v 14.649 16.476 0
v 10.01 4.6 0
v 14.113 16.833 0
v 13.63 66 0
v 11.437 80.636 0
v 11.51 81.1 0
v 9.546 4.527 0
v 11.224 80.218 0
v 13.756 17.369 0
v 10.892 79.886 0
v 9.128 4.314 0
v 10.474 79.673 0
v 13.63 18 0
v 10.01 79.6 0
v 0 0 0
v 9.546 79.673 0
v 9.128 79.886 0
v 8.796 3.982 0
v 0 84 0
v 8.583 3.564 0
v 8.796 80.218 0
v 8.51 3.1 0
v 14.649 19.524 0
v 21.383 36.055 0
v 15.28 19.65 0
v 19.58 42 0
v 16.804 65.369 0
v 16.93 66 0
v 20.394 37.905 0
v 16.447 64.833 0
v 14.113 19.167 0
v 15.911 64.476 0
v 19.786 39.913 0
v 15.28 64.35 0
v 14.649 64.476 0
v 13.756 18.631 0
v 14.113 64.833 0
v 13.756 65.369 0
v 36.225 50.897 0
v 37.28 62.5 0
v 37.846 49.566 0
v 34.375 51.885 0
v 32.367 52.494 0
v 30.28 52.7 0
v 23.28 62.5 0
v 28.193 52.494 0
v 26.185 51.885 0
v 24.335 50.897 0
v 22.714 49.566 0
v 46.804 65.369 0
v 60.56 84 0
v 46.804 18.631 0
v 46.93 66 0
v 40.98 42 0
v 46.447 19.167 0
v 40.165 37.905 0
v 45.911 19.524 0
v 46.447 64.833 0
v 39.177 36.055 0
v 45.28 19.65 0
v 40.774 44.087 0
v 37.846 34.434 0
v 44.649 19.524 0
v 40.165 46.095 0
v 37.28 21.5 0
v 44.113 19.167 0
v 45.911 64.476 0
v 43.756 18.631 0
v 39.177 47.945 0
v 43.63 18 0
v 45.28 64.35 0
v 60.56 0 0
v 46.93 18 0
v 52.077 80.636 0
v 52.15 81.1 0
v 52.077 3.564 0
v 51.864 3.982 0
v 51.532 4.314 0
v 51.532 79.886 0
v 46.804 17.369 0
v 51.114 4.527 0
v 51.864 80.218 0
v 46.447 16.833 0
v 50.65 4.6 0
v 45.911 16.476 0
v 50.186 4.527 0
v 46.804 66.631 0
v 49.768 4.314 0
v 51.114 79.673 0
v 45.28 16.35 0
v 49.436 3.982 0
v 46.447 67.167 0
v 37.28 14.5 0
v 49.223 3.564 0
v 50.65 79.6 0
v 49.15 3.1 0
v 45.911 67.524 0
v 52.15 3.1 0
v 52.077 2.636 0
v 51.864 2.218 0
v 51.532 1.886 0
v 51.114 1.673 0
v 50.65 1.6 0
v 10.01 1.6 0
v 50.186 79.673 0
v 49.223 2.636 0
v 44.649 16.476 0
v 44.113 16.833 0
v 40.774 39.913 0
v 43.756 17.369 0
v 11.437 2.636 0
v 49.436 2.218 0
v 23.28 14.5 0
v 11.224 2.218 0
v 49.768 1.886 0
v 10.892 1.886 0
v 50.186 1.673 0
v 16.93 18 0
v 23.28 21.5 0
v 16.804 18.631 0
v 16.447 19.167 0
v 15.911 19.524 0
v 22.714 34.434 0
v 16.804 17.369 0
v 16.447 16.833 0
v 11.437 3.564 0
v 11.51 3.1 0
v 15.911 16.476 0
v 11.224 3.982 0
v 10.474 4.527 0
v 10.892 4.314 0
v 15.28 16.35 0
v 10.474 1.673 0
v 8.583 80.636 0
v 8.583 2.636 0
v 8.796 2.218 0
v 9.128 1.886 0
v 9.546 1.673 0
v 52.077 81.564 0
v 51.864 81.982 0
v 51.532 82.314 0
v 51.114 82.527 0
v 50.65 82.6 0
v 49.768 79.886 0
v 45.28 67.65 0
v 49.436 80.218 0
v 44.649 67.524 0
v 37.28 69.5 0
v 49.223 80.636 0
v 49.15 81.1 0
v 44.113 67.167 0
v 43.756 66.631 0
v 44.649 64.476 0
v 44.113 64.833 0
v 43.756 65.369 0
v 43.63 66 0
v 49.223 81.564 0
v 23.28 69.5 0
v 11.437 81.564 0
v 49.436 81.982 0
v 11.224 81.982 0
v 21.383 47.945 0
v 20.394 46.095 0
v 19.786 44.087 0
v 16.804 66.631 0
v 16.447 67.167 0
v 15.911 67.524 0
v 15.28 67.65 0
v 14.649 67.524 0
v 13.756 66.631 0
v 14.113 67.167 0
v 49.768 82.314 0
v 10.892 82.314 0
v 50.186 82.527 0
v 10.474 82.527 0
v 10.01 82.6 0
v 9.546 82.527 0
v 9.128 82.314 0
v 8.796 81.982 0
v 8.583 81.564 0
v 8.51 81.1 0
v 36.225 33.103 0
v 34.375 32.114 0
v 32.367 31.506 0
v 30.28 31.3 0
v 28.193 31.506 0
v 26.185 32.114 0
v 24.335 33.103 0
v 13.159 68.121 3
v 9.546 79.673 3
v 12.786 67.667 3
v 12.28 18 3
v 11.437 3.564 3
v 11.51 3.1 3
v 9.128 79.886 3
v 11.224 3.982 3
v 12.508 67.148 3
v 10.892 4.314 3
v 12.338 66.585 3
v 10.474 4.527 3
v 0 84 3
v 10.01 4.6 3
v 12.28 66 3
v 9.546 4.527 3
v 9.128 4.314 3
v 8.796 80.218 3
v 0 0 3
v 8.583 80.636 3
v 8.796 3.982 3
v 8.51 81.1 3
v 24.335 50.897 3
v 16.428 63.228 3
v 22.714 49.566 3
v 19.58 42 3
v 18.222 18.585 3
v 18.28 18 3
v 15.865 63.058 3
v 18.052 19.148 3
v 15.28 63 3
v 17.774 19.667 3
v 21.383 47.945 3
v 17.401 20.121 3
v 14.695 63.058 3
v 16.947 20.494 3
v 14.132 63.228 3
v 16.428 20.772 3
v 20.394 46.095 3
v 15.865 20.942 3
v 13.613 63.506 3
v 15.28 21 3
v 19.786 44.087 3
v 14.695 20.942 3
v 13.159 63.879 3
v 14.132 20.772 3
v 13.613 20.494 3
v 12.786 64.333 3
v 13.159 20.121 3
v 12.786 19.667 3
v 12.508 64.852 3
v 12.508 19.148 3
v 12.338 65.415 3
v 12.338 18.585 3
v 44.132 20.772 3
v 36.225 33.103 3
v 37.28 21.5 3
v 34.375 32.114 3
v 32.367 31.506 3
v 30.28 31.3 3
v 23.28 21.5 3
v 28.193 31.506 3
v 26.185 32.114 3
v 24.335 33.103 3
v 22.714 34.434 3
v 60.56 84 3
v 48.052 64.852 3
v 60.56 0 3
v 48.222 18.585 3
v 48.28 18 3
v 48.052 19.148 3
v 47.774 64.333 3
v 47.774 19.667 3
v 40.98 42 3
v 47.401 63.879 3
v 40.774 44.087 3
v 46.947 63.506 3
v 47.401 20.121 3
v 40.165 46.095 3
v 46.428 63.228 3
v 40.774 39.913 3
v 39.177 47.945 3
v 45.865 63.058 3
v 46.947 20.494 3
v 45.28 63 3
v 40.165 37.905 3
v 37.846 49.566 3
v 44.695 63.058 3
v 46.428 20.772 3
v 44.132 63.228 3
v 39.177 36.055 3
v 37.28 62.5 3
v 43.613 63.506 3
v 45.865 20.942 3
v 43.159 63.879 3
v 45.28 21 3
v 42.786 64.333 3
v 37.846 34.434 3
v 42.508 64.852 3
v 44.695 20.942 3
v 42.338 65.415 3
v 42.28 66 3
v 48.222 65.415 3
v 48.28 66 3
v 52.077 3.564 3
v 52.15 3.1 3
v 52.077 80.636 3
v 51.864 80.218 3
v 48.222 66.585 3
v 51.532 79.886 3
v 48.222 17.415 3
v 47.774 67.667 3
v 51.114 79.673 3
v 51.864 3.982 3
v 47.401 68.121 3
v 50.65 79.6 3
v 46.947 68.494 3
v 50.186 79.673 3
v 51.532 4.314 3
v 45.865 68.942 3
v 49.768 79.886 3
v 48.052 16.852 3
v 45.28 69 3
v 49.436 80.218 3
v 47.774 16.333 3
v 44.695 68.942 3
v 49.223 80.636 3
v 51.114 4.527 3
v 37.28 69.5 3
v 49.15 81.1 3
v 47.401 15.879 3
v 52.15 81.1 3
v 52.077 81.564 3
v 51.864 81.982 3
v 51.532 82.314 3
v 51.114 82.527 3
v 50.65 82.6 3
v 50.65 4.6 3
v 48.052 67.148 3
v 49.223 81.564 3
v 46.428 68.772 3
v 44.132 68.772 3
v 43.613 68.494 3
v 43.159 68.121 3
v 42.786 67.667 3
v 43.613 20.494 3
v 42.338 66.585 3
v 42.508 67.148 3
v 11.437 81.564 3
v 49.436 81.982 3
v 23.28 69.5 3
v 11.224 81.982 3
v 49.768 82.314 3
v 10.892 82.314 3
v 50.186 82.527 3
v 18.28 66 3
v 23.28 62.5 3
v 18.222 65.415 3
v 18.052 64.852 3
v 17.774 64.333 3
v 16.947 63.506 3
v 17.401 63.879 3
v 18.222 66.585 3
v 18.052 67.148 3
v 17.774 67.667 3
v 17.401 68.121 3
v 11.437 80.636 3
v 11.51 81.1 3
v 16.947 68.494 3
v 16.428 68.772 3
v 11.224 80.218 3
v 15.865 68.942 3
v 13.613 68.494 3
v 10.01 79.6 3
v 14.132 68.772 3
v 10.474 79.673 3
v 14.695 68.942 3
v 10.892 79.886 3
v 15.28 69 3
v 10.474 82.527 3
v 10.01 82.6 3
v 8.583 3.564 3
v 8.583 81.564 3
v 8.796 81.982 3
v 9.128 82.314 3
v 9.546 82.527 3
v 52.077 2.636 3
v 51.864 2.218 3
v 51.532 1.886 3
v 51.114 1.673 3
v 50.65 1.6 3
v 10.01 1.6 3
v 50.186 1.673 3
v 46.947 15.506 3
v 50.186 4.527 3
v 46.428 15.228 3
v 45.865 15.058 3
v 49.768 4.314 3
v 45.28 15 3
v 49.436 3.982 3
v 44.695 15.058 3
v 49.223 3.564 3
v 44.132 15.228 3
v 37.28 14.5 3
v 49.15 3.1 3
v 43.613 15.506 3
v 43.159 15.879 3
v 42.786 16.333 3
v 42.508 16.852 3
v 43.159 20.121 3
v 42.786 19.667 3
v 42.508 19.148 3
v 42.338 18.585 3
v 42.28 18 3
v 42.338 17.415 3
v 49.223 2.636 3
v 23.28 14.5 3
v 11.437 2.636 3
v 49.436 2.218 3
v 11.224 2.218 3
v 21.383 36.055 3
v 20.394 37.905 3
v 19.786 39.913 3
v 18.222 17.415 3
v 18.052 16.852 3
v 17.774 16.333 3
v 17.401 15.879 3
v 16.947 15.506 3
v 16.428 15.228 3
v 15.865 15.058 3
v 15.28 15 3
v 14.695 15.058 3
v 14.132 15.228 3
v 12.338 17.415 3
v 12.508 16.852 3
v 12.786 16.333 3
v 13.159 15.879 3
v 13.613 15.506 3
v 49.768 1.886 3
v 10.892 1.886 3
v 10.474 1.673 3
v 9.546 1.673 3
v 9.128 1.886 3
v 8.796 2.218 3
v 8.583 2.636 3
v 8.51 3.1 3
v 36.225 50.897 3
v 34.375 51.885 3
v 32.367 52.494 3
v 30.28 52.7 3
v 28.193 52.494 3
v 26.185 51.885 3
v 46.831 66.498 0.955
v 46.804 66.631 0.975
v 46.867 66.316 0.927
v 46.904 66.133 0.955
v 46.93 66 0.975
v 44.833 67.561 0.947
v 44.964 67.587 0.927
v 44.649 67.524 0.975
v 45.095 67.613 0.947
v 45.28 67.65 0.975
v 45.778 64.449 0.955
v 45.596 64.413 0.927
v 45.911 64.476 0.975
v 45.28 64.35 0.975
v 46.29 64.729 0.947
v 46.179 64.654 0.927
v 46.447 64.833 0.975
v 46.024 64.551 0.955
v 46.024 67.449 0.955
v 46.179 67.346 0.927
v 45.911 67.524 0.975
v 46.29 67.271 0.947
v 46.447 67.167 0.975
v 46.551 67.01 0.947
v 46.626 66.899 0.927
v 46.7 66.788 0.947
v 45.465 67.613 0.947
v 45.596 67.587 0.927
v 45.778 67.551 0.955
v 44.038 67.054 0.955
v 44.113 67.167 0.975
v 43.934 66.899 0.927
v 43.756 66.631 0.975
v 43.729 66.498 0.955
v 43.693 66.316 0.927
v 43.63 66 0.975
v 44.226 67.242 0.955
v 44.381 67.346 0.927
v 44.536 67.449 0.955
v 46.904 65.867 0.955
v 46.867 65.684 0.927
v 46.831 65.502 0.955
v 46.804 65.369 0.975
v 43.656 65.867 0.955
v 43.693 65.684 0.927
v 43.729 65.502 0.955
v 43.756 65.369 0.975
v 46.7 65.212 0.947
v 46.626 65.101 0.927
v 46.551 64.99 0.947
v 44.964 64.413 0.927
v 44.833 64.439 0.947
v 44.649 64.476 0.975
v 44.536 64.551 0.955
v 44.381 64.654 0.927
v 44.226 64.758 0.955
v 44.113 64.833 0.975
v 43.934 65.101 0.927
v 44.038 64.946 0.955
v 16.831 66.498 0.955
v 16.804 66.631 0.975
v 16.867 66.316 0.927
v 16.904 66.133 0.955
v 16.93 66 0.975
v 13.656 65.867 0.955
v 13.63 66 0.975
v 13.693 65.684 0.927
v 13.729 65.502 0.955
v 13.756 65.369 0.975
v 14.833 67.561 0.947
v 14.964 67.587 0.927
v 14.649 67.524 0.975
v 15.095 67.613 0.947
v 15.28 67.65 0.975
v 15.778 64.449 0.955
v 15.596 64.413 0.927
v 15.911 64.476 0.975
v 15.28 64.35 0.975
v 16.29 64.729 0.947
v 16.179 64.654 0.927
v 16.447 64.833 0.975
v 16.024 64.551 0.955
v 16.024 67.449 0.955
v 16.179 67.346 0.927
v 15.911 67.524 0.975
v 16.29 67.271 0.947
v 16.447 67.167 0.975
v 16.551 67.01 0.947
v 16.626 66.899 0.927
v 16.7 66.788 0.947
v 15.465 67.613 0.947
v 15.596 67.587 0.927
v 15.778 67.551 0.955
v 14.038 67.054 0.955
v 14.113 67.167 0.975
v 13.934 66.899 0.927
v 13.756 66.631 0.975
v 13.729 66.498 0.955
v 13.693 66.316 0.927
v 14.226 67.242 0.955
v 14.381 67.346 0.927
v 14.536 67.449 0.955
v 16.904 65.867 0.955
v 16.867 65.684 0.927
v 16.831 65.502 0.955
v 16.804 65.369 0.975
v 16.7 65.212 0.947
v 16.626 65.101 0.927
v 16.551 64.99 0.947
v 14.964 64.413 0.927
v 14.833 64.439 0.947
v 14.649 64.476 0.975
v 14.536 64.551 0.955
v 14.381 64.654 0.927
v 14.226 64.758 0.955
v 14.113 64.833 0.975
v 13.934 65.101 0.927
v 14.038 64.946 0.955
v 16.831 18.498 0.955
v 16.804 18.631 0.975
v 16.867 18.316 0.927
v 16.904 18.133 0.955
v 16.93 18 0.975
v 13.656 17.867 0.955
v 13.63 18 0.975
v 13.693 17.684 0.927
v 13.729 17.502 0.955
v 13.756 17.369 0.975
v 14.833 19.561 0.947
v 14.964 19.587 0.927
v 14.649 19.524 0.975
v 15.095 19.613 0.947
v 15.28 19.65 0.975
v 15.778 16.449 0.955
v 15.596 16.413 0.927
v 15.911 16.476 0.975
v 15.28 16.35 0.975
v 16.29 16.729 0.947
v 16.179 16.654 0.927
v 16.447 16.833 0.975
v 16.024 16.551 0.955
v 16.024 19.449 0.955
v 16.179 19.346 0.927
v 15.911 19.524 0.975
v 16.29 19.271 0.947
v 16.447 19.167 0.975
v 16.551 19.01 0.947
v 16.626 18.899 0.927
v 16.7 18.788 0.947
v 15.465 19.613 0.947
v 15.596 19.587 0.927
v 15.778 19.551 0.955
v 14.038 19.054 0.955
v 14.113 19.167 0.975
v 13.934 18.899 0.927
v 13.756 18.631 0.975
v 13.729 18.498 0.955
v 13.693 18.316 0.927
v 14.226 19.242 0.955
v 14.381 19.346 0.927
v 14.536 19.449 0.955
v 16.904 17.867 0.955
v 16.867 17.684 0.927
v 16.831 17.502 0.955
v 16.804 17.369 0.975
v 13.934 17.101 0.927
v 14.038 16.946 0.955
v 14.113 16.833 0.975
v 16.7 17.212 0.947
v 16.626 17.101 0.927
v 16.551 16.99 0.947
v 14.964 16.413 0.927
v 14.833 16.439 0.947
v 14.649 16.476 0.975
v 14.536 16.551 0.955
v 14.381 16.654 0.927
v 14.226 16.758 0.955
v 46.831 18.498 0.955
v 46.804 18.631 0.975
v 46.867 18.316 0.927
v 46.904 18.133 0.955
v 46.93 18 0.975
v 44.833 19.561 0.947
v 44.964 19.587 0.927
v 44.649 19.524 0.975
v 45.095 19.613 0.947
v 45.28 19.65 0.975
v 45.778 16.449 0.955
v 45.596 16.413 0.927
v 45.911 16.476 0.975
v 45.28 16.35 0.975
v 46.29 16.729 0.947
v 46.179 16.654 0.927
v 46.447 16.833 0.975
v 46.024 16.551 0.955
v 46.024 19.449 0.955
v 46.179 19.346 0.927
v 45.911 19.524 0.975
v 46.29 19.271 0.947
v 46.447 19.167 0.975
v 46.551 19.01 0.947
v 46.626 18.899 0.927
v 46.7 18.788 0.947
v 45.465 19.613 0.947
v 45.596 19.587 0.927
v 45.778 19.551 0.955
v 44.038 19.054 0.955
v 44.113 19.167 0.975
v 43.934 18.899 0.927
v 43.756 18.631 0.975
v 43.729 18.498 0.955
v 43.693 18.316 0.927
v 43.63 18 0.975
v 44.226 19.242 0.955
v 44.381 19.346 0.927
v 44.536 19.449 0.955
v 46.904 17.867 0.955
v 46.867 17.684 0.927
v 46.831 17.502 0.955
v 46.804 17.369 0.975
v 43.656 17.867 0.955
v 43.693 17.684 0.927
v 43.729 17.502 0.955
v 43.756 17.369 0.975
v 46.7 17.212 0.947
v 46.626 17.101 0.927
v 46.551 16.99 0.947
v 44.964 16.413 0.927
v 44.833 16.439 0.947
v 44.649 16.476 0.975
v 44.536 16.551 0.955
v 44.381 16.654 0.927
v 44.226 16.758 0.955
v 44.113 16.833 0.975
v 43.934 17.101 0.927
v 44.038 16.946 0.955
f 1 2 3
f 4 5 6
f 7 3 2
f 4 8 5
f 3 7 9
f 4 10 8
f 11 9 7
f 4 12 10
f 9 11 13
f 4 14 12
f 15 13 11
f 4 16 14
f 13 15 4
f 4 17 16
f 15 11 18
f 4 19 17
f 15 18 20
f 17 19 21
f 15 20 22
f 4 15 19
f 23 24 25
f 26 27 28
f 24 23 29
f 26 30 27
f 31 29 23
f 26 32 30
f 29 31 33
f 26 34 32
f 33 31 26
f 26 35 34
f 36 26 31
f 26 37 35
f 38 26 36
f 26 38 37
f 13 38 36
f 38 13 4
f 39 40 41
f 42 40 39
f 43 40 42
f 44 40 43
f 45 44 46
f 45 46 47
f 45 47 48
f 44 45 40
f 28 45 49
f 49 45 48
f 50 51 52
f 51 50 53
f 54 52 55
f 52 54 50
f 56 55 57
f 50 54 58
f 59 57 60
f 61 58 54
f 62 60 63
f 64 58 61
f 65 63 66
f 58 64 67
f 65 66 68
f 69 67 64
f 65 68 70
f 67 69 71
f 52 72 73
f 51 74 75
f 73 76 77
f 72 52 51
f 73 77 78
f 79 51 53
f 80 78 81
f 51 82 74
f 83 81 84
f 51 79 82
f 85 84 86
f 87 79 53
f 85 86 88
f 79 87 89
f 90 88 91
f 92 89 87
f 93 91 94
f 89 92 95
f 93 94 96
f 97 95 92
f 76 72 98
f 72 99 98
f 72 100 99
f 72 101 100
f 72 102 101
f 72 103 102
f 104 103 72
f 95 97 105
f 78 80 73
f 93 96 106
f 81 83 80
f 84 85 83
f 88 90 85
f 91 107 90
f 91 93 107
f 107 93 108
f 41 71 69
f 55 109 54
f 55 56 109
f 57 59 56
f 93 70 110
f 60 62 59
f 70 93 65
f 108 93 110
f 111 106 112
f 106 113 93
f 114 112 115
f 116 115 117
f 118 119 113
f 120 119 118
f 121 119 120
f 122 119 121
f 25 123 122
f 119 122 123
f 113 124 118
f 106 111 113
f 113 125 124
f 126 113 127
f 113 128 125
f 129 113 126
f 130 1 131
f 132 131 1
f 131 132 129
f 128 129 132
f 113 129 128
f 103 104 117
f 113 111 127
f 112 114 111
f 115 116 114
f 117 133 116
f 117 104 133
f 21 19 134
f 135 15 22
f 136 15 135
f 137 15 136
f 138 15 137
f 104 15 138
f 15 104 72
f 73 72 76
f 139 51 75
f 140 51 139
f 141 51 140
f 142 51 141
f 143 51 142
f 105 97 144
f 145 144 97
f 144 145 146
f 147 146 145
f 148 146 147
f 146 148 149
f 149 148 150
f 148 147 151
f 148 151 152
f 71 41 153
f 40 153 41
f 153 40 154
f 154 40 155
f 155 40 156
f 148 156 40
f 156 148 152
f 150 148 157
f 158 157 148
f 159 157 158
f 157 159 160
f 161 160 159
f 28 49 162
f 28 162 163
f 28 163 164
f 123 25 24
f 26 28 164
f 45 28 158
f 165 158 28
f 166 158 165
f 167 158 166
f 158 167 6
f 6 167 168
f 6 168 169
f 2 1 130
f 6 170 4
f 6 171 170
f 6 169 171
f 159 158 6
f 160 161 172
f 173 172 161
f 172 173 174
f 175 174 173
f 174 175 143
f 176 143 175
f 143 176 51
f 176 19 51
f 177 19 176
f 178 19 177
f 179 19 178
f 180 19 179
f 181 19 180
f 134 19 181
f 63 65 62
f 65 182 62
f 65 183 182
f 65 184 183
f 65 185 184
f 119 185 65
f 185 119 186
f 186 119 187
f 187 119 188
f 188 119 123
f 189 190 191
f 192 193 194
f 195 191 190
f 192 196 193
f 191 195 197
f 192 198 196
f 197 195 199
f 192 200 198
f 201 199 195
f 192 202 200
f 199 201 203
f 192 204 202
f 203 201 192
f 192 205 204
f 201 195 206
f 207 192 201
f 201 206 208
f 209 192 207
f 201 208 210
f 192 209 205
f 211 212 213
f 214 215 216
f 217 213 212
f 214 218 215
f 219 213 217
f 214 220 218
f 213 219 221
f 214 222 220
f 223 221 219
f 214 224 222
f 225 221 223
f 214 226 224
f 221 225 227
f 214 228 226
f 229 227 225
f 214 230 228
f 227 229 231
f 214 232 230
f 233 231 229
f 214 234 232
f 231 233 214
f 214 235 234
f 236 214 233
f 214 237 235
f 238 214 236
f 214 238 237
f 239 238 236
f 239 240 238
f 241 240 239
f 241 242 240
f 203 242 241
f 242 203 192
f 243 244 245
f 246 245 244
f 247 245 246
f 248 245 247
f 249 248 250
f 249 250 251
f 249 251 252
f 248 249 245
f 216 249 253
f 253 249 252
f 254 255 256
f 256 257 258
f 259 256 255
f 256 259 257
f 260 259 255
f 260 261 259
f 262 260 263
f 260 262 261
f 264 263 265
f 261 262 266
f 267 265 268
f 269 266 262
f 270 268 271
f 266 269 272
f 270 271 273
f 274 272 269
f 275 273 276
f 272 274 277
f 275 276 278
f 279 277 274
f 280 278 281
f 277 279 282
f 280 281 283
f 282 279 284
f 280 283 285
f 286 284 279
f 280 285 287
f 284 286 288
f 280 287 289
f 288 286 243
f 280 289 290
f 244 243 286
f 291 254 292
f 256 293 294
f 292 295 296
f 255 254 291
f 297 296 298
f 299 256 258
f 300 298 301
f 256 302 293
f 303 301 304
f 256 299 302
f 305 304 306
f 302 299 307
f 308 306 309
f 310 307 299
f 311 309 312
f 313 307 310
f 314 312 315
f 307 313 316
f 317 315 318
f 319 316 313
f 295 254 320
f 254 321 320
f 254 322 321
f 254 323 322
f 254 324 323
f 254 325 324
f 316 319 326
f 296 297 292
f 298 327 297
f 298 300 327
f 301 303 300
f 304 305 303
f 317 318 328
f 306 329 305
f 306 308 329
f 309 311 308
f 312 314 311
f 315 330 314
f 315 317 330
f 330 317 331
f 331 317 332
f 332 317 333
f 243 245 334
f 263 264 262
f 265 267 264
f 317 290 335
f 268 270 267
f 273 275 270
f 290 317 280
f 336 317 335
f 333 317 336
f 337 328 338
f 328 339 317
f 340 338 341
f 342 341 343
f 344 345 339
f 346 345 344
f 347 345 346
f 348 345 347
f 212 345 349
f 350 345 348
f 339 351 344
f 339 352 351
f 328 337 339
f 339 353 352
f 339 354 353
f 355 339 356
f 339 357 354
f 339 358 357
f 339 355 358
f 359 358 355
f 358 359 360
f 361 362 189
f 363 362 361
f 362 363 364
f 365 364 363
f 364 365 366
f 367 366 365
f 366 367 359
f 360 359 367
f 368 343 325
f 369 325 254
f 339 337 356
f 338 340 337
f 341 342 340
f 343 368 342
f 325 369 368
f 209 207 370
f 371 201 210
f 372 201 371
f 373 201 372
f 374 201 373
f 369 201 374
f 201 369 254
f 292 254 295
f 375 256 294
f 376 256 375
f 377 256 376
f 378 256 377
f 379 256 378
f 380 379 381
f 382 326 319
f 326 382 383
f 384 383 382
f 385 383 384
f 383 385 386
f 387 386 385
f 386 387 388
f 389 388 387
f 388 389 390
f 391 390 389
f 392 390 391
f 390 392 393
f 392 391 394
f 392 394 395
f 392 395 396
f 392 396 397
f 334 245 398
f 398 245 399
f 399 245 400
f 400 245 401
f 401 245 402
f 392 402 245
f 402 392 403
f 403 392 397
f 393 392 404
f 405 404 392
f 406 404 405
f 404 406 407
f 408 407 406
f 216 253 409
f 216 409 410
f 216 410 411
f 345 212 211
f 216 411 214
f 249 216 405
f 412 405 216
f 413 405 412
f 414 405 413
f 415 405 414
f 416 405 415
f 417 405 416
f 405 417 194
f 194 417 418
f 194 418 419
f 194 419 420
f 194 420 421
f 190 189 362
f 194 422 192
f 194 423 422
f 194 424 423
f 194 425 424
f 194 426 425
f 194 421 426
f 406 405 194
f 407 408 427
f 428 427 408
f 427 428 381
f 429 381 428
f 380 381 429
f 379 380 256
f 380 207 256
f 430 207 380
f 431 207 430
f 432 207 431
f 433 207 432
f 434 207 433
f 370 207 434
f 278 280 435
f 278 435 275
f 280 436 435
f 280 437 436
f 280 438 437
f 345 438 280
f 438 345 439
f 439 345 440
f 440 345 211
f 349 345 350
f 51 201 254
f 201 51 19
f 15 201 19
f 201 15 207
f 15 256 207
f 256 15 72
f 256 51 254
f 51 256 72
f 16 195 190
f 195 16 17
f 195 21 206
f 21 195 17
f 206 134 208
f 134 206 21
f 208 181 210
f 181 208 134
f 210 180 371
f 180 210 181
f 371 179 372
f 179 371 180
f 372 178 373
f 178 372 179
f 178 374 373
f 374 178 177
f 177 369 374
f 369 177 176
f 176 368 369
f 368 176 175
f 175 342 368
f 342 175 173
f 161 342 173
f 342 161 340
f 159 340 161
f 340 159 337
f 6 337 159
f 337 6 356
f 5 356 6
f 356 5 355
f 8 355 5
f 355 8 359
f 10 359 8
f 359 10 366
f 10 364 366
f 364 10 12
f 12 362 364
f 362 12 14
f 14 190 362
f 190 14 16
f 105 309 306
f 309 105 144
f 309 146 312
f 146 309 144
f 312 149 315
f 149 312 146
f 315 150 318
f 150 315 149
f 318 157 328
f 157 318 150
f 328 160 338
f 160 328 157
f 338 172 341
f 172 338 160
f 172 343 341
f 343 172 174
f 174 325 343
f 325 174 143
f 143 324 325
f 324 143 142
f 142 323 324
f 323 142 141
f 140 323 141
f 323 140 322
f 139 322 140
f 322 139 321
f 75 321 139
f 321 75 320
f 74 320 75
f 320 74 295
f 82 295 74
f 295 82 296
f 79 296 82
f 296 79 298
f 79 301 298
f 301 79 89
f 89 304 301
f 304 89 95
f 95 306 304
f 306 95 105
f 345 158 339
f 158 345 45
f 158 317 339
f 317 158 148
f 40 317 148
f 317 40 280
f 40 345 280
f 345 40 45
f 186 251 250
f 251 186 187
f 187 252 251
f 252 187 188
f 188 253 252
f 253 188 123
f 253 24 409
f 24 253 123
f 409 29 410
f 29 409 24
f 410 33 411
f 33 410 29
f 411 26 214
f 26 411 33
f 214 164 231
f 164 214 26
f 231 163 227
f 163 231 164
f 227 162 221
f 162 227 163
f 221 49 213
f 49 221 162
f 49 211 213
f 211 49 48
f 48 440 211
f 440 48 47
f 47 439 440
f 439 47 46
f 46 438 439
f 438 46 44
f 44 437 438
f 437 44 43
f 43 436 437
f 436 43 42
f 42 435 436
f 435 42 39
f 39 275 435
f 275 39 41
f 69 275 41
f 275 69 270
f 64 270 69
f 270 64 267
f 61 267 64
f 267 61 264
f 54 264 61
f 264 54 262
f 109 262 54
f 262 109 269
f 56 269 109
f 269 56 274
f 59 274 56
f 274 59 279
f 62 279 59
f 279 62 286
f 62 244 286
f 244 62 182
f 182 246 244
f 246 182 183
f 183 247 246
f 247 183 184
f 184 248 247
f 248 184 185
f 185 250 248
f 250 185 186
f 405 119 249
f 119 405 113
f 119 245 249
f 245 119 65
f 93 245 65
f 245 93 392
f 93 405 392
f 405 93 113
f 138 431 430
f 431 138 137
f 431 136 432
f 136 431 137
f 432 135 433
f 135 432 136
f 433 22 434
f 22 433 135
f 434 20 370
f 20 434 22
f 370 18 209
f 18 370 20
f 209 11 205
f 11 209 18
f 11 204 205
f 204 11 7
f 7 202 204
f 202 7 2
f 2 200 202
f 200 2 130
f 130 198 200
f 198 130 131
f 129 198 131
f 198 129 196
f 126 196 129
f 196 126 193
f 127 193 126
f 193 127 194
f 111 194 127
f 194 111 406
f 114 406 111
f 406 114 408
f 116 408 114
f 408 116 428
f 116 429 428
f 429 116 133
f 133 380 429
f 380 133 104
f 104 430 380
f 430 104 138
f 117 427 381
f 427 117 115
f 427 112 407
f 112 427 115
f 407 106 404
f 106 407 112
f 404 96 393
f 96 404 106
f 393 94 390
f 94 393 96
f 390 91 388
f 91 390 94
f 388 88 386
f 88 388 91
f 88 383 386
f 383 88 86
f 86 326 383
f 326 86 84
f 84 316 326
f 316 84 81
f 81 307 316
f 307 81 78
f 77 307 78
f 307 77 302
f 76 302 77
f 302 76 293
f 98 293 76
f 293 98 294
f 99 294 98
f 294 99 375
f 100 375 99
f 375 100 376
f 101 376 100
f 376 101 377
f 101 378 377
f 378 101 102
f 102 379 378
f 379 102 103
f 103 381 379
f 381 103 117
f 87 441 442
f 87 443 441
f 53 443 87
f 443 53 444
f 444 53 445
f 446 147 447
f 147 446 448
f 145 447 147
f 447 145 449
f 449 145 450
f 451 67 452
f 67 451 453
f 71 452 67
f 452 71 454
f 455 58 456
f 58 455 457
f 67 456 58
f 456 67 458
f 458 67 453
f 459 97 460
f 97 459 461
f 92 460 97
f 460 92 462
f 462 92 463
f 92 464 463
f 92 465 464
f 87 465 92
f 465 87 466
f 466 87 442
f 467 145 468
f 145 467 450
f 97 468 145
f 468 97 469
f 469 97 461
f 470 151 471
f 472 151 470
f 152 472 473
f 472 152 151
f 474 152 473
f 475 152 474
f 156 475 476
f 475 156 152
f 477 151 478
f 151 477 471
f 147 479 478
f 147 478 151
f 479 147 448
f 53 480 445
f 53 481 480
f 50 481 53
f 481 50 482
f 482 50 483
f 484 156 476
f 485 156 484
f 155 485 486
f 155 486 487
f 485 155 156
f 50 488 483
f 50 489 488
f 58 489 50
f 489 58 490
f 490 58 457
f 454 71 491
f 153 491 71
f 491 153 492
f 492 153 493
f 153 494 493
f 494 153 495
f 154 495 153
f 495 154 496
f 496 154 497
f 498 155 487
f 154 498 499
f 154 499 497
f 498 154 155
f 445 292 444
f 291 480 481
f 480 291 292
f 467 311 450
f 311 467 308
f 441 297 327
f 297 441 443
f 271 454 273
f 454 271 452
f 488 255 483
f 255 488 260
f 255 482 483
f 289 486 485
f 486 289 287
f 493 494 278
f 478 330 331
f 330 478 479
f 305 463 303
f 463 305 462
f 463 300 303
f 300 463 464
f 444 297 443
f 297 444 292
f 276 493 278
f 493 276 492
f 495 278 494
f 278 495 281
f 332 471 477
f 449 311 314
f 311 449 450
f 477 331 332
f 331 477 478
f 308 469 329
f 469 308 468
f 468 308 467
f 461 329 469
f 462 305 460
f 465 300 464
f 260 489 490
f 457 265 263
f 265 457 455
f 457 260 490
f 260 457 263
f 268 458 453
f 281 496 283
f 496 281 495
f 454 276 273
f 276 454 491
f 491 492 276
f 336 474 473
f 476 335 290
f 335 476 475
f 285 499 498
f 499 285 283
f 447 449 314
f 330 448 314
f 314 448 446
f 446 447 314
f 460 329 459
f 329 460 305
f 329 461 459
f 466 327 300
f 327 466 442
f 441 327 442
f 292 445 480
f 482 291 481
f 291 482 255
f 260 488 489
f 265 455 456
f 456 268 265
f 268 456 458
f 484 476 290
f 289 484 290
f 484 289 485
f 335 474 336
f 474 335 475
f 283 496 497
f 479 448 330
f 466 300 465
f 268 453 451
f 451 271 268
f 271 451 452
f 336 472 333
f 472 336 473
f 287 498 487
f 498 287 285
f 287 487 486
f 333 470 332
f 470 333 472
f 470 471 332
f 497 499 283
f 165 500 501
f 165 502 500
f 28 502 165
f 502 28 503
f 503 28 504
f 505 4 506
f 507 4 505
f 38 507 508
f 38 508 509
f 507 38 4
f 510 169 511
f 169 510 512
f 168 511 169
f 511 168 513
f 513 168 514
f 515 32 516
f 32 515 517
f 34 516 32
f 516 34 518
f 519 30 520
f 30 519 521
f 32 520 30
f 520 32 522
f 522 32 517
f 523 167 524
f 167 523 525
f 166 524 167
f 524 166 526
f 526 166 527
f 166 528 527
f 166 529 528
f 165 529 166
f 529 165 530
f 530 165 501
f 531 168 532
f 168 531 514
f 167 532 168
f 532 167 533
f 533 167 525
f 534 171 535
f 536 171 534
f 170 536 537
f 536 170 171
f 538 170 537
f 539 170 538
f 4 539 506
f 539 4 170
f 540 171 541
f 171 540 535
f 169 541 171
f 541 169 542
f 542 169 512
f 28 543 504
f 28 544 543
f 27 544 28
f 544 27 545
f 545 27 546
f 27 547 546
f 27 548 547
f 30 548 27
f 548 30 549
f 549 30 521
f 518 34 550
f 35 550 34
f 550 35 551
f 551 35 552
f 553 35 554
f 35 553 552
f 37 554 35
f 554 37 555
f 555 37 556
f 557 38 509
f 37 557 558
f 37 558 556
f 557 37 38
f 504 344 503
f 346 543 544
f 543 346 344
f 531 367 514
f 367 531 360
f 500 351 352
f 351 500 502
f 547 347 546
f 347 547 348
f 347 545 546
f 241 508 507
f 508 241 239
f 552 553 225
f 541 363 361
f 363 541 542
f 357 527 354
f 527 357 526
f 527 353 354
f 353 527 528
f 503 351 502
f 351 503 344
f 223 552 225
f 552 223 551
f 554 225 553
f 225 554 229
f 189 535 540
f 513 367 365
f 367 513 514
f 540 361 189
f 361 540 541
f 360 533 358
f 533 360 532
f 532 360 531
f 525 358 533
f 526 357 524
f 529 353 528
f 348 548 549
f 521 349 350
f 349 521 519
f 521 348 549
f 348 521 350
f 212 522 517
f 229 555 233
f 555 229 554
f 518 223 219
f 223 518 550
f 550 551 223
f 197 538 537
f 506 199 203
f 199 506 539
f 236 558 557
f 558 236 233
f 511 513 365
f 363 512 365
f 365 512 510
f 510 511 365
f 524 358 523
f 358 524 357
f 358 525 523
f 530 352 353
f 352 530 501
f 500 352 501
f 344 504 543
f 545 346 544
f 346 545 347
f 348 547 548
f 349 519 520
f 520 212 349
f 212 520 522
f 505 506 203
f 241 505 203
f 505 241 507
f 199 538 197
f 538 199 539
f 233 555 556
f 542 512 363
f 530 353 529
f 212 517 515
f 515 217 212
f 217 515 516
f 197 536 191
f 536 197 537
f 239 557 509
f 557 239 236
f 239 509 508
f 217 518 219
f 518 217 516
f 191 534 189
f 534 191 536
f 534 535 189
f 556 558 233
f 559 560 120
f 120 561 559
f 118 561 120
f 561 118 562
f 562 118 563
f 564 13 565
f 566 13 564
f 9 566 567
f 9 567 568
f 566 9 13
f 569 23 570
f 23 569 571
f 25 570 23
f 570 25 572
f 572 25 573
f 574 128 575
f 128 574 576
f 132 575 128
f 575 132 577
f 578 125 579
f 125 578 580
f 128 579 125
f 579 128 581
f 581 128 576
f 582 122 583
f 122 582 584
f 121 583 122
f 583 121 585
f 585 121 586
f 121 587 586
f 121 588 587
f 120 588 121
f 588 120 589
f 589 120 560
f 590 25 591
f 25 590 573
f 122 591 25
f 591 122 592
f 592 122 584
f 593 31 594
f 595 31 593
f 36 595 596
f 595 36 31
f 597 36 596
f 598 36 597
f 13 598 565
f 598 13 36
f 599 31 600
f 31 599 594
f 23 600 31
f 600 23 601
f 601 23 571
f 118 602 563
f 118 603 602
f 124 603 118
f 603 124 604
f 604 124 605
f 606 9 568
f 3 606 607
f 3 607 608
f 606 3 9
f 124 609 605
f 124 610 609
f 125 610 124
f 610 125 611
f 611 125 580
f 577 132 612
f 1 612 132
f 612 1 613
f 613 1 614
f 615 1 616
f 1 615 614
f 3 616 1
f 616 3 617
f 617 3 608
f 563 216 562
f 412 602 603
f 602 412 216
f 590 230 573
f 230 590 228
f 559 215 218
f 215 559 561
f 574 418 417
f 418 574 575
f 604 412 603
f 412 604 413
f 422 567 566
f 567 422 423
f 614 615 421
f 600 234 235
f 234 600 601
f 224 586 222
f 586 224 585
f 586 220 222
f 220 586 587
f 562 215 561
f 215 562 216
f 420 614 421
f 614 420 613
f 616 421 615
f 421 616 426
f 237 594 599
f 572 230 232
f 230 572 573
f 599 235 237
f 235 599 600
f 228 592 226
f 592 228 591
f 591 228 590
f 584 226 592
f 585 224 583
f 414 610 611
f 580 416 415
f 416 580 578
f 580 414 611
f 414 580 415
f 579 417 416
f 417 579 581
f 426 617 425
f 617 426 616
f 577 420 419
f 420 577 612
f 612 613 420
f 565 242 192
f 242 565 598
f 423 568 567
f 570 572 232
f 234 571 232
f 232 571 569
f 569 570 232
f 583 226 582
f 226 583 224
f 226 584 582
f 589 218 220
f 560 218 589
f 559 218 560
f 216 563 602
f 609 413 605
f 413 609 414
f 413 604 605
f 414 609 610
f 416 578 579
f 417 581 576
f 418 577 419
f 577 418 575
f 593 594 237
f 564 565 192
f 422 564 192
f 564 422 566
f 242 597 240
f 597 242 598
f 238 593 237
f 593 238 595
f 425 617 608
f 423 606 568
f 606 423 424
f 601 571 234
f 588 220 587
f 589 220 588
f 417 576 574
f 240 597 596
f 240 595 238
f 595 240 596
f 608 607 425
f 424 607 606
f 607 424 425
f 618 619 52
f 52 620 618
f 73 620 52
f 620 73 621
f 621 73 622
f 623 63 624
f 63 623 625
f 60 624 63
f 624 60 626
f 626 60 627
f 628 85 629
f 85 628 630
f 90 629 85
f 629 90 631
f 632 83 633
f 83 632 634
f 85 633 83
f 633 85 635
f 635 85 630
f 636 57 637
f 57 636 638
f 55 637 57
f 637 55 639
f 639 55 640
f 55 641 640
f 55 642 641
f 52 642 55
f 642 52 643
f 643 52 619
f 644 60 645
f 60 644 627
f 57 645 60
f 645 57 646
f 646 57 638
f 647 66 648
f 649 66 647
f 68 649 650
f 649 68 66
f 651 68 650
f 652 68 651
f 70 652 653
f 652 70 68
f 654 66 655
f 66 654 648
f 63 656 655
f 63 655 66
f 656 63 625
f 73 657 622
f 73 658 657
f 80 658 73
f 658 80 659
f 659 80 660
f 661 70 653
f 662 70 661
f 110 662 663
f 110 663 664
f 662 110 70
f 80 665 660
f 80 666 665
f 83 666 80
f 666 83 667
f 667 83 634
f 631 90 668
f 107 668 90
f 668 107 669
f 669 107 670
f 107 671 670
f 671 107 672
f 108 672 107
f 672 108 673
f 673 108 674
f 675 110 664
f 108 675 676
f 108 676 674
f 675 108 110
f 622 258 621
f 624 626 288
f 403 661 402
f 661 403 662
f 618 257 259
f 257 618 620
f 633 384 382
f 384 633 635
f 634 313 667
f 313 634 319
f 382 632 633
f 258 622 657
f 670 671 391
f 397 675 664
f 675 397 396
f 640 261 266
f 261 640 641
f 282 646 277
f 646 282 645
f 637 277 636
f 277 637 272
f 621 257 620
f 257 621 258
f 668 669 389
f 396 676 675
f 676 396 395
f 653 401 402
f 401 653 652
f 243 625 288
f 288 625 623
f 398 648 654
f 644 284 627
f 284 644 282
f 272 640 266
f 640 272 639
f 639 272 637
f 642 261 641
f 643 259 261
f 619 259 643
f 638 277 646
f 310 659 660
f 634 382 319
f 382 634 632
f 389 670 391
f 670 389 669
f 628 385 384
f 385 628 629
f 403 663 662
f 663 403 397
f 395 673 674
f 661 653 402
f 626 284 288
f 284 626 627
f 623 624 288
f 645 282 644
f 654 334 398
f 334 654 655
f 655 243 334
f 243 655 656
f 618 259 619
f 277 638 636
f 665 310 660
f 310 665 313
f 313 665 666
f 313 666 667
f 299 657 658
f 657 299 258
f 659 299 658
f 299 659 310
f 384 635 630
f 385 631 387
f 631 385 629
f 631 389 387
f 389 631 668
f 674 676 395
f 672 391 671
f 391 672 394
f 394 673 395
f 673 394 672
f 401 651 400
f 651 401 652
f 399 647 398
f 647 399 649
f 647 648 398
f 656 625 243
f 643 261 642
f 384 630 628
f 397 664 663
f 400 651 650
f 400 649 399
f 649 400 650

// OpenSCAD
// file: panel.scad
$fn = 20;
U = 3;
T = 16;

h = U * 44.5 - 5;
w = T * 5.08 - 2*.2;

m_x = 7.47;
//m_x = 0;
m_y = 3.1;
m_d = 3;

F = U * 44.5 + (122.5 - 3 * 44.5);

echo(w);

module hole() {
//    hull() {
    //circle(d=m_d);
    translate([5.08/2,0]) circle(d=m_d);
//    }
}

module holes() {
    translate([m_x, m_y]) hole();
    translate([m_x, m_y + F]) hole();
}

module panel() {
    difference() {
    square([w, h]);
        holes();
        if(T>6) {
            translate([(T-3) * 5.08 - 5.08, 0]) holes();
        }
        translate([(T-24) * 5.08, 0]) holes();
    }
}

//panel();

//#square([46,62]);
//#import("jr-module-bay-cover.stl");
// main file
b_w = 13;
b_h = 20;

box_width = 40;
box_height = 40;
box_depth = 5;
wall_thickness = 8;

include <panel.scad>

T=12;
U=2;

render()
difference(){
union() {
difference() {
    linear_extrude(3)
    difference() {
    panel();
        translate([w/2,h/2])
        circle(d=21.4, $fn=32, true);
      
        translate([w/2, 3*h/4+3])
        rotate([0, 0, 90])
        square([7, 14], true);
        
        translate([w/2, h/4-3])
        rotate([0, 0, 90])
        square([7, 14], true);
    }
}
}
 
translate([w/2 + 15, 3*h/4+3, 0])
cylinder(d=3.3, h=33, $fn=16);

translate([w/2 + 15, 3*h/4+3, 0])
cylinder(d=3, h=3, $fn=32, r1=1, r2=3);
   

translate([w/2 - 15, 3*h/4+3, 0])
cylinder(d=3.3, h=33, $fn=16);

translate([w/2 - 15, 3*h/4+3, 0])
cylinder(d=3, h=3, $fn=32, r1=1, r2=3);
       

translate([w/2 - 15, h/4-3, 0])
cylinder(d=3.3, h=33, $fn=16);

translate([w/2 - 15, h/4-3, 0])
cylinder(d=3, h=3, $fn=32, r1=1, r2=3);


translate([w/2+ 15, h/4-3, 0])
cylinder(d=3.3, h=33, $fn=16);

translate([w/2+ 15, h/4-3, 0])
cylinder(d=3, h=3, $fn=32, r1=1, r2=3);


}
